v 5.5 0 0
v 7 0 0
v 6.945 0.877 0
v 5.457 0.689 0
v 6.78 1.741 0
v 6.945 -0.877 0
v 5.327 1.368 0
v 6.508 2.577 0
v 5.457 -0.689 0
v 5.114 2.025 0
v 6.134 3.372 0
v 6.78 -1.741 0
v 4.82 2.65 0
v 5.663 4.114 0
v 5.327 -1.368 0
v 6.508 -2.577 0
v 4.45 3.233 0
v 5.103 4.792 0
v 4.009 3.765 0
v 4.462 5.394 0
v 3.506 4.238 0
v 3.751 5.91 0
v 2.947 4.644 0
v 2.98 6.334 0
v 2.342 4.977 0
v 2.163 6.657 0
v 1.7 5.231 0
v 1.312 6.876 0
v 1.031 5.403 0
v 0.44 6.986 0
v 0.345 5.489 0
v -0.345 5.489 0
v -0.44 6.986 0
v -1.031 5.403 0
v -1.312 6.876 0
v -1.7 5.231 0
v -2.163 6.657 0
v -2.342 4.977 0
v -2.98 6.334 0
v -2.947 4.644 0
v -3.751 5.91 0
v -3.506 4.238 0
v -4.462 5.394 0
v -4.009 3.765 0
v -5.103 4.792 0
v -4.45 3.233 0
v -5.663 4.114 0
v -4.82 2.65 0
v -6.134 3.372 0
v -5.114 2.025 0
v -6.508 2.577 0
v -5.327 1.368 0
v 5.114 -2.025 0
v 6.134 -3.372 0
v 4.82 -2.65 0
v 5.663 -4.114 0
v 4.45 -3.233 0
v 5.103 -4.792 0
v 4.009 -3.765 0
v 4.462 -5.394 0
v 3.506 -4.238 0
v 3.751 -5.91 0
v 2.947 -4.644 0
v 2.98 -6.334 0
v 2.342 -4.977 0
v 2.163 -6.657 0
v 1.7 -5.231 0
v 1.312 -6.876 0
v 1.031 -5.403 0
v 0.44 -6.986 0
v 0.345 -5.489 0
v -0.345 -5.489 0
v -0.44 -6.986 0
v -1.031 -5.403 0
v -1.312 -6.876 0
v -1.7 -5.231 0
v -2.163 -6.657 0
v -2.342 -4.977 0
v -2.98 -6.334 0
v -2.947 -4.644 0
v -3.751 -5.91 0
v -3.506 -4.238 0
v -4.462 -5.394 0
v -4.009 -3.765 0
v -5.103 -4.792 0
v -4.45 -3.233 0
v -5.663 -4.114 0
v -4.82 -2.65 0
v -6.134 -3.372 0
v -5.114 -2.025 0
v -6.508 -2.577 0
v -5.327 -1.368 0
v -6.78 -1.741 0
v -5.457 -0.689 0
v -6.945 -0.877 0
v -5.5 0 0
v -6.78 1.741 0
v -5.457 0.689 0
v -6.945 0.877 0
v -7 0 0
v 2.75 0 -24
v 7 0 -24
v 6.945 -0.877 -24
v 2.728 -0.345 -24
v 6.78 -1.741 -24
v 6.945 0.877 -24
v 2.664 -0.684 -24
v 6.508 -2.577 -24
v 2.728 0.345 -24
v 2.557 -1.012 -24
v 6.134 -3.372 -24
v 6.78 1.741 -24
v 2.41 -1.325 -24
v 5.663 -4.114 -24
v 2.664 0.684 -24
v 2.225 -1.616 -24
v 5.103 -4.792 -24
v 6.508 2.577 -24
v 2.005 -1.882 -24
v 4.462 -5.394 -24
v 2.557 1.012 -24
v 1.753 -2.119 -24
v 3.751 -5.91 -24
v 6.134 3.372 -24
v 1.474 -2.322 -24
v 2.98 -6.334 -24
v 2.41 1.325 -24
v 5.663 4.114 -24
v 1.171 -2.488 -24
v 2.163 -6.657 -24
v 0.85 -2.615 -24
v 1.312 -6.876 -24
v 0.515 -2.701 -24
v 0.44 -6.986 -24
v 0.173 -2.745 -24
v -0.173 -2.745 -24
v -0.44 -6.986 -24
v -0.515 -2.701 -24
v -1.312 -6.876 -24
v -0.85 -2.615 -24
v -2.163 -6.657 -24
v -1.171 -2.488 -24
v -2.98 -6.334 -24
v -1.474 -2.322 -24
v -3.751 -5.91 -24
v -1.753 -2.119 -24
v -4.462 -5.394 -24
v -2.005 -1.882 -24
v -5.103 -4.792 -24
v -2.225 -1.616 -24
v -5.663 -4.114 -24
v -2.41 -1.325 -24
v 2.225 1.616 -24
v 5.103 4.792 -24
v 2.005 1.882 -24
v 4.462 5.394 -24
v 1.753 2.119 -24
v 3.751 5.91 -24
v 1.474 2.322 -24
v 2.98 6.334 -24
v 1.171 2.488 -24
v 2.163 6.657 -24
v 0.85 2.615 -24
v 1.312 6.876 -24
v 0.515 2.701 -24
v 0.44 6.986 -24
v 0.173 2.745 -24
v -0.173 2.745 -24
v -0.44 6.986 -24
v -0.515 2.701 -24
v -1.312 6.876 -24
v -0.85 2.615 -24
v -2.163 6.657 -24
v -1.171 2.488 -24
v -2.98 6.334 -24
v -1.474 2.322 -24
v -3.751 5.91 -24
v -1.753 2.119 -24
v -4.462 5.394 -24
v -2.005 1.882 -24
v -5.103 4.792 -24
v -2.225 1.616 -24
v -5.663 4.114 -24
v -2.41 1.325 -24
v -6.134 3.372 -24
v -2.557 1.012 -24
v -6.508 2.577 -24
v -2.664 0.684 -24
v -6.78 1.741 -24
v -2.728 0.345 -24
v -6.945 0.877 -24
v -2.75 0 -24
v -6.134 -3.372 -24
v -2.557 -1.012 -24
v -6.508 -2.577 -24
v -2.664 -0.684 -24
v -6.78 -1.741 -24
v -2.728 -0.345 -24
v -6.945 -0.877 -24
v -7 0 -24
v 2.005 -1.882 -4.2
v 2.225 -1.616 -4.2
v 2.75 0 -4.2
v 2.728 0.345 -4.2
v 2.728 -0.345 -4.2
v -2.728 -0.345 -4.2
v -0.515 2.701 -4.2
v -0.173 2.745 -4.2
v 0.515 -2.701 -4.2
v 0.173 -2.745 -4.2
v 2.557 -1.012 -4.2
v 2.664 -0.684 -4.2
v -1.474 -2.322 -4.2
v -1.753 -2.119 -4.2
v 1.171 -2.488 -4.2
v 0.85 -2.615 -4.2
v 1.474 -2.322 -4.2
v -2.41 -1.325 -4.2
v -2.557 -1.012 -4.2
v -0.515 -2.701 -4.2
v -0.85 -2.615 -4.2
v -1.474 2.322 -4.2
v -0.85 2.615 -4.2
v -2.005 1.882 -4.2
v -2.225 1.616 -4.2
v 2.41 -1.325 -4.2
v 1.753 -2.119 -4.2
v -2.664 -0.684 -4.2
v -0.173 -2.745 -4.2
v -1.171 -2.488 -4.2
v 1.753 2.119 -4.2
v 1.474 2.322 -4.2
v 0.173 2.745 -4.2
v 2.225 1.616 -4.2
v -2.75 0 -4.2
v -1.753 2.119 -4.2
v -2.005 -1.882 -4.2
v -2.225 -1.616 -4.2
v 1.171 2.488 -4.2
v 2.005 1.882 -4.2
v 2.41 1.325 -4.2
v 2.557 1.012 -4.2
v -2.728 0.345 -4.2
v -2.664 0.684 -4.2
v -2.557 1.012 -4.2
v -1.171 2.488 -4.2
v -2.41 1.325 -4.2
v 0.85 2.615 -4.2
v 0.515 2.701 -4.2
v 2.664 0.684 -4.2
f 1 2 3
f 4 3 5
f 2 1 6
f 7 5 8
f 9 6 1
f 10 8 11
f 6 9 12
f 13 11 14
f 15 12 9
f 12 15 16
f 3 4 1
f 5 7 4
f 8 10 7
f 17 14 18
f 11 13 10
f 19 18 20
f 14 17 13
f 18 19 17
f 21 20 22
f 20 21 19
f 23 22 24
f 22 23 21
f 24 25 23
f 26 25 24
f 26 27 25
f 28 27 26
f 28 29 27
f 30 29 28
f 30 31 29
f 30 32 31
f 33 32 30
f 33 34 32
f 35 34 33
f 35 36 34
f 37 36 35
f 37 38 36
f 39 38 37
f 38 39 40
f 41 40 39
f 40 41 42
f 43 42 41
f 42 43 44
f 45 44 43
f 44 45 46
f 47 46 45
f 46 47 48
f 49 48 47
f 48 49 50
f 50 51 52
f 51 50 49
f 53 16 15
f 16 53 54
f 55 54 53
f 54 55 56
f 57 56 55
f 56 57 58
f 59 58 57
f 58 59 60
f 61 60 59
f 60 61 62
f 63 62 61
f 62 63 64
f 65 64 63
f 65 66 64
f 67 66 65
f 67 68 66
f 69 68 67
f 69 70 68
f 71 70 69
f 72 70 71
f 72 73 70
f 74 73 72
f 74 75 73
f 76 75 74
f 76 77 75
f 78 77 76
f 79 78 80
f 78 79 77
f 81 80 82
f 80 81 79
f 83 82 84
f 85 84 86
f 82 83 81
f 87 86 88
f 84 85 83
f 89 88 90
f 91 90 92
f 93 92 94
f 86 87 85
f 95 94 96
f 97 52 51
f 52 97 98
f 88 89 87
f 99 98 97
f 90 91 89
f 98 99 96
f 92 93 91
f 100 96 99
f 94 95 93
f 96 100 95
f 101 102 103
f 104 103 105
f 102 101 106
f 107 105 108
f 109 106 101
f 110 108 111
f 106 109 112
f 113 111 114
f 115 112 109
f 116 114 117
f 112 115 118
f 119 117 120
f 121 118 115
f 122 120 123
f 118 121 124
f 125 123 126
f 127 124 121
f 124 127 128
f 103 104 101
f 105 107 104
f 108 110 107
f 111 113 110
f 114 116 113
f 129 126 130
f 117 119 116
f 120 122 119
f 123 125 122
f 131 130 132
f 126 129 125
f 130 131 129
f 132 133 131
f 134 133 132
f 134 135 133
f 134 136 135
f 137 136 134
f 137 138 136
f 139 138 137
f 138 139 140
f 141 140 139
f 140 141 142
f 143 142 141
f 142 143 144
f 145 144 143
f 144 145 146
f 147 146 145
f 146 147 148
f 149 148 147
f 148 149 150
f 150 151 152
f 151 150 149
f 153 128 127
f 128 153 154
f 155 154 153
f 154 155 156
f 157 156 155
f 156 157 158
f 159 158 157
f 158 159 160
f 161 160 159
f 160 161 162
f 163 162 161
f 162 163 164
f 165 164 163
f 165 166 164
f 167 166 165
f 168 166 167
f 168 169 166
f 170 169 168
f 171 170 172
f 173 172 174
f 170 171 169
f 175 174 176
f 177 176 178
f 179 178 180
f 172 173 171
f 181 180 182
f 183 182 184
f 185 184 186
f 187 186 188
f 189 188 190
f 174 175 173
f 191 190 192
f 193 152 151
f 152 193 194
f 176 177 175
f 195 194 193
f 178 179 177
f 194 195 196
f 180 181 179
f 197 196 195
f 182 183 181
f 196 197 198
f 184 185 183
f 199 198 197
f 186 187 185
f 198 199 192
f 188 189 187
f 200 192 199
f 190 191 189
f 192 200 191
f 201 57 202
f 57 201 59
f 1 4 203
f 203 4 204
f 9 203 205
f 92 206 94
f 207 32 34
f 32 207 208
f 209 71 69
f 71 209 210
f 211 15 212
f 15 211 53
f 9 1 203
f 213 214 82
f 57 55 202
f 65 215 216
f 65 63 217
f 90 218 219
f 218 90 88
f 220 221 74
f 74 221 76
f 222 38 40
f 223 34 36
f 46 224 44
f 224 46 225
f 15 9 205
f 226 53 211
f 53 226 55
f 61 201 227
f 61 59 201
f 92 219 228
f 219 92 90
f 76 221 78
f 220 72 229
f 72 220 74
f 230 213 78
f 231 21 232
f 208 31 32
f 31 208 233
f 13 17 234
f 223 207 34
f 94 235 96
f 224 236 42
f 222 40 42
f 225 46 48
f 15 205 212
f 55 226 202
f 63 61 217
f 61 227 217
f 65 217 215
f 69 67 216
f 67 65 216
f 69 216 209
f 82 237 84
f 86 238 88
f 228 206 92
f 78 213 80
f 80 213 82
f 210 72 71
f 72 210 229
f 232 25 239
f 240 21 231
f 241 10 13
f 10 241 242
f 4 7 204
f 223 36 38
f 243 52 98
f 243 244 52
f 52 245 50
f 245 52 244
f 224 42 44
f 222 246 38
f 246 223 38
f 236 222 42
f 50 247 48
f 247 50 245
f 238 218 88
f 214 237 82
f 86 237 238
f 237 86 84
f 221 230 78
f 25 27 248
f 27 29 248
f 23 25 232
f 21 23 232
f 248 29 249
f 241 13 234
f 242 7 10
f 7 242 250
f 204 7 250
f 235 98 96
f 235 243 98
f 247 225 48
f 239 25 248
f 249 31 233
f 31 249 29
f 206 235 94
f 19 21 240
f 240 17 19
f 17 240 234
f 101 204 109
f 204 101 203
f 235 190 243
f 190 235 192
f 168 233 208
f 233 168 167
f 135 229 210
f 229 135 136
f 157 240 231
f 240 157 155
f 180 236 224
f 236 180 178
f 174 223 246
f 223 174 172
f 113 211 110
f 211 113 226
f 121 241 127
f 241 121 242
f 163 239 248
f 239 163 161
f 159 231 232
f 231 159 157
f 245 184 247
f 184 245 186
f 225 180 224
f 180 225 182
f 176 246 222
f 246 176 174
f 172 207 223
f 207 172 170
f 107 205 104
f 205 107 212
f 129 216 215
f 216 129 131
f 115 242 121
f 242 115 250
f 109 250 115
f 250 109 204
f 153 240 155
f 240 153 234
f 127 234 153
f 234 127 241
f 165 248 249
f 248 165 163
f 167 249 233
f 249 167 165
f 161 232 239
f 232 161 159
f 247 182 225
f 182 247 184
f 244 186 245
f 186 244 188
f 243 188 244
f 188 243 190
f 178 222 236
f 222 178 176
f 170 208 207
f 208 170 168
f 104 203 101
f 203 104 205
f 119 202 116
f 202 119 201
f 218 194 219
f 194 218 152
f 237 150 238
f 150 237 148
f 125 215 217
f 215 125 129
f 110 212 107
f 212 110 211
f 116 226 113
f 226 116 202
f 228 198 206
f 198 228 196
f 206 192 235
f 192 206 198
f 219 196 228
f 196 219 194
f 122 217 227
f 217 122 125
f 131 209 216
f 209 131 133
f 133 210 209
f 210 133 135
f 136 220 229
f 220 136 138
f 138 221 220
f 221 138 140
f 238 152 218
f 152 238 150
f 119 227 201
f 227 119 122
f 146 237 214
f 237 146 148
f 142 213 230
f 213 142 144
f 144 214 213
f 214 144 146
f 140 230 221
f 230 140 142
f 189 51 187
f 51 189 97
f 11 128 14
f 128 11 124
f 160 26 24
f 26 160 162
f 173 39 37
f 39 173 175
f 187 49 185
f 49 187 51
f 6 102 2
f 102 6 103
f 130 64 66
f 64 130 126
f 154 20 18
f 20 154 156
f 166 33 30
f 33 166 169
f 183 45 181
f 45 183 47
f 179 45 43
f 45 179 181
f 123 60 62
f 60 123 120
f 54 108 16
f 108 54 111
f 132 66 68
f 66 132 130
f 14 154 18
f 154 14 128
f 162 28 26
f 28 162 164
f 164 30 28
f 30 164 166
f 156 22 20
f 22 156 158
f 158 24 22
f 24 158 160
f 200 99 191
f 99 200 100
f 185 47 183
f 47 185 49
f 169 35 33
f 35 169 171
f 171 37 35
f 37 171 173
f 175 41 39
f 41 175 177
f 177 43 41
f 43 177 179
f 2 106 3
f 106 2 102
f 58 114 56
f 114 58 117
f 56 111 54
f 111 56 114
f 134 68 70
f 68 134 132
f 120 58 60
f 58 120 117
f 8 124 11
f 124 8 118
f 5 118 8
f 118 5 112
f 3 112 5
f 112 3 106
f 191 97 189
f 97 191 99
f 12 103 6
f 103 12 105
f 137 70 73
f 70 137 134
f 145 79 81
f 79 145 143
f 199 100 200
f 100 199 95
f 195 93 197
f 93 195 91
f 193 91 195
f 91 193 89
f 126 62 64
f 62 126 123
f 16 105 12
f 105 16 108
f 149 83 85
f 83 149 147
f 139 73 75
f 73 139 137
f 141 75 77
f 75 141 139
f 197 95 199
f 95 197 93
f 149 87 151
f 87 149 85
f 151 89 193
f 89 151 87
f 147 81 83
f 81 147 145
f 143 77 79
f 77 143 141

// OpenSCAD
$fn = 50;


difference() {
	union() {
		translate(v = [0, 0, -24.0000000000]) {
			cylinder(h = 24, r = 7.0000000000);
		}
		cylinder(h = 0, r = 10.0000000000);
	}
	union() {
		translate(v = [0, 0, 0]) {
			rotate(a = [0, 0, 0]) {
				difference() {
					union() {
						#translate(v = [0, 0, -24.0000000000]) {
							cylinder(h = 24, r = 2.2500000000);
						}
						#translate(v = [0, 0, -4.2000000000]) {
							cylinder(h = 4.2000000000, r1 = 2.7500000000, r2 = 5.5000000000);
						}
						#translate(v = [0, 0, -24.0000000000]) {
							cylinder(h = 24, r = 2.7500000000);
						}
						#translate(v = [0, 0, -24.0000000000]) {
							cylinder(h = 24, r = 2.2500000000);
						}
					}
					union();
				}
			}
		}
	}
}
